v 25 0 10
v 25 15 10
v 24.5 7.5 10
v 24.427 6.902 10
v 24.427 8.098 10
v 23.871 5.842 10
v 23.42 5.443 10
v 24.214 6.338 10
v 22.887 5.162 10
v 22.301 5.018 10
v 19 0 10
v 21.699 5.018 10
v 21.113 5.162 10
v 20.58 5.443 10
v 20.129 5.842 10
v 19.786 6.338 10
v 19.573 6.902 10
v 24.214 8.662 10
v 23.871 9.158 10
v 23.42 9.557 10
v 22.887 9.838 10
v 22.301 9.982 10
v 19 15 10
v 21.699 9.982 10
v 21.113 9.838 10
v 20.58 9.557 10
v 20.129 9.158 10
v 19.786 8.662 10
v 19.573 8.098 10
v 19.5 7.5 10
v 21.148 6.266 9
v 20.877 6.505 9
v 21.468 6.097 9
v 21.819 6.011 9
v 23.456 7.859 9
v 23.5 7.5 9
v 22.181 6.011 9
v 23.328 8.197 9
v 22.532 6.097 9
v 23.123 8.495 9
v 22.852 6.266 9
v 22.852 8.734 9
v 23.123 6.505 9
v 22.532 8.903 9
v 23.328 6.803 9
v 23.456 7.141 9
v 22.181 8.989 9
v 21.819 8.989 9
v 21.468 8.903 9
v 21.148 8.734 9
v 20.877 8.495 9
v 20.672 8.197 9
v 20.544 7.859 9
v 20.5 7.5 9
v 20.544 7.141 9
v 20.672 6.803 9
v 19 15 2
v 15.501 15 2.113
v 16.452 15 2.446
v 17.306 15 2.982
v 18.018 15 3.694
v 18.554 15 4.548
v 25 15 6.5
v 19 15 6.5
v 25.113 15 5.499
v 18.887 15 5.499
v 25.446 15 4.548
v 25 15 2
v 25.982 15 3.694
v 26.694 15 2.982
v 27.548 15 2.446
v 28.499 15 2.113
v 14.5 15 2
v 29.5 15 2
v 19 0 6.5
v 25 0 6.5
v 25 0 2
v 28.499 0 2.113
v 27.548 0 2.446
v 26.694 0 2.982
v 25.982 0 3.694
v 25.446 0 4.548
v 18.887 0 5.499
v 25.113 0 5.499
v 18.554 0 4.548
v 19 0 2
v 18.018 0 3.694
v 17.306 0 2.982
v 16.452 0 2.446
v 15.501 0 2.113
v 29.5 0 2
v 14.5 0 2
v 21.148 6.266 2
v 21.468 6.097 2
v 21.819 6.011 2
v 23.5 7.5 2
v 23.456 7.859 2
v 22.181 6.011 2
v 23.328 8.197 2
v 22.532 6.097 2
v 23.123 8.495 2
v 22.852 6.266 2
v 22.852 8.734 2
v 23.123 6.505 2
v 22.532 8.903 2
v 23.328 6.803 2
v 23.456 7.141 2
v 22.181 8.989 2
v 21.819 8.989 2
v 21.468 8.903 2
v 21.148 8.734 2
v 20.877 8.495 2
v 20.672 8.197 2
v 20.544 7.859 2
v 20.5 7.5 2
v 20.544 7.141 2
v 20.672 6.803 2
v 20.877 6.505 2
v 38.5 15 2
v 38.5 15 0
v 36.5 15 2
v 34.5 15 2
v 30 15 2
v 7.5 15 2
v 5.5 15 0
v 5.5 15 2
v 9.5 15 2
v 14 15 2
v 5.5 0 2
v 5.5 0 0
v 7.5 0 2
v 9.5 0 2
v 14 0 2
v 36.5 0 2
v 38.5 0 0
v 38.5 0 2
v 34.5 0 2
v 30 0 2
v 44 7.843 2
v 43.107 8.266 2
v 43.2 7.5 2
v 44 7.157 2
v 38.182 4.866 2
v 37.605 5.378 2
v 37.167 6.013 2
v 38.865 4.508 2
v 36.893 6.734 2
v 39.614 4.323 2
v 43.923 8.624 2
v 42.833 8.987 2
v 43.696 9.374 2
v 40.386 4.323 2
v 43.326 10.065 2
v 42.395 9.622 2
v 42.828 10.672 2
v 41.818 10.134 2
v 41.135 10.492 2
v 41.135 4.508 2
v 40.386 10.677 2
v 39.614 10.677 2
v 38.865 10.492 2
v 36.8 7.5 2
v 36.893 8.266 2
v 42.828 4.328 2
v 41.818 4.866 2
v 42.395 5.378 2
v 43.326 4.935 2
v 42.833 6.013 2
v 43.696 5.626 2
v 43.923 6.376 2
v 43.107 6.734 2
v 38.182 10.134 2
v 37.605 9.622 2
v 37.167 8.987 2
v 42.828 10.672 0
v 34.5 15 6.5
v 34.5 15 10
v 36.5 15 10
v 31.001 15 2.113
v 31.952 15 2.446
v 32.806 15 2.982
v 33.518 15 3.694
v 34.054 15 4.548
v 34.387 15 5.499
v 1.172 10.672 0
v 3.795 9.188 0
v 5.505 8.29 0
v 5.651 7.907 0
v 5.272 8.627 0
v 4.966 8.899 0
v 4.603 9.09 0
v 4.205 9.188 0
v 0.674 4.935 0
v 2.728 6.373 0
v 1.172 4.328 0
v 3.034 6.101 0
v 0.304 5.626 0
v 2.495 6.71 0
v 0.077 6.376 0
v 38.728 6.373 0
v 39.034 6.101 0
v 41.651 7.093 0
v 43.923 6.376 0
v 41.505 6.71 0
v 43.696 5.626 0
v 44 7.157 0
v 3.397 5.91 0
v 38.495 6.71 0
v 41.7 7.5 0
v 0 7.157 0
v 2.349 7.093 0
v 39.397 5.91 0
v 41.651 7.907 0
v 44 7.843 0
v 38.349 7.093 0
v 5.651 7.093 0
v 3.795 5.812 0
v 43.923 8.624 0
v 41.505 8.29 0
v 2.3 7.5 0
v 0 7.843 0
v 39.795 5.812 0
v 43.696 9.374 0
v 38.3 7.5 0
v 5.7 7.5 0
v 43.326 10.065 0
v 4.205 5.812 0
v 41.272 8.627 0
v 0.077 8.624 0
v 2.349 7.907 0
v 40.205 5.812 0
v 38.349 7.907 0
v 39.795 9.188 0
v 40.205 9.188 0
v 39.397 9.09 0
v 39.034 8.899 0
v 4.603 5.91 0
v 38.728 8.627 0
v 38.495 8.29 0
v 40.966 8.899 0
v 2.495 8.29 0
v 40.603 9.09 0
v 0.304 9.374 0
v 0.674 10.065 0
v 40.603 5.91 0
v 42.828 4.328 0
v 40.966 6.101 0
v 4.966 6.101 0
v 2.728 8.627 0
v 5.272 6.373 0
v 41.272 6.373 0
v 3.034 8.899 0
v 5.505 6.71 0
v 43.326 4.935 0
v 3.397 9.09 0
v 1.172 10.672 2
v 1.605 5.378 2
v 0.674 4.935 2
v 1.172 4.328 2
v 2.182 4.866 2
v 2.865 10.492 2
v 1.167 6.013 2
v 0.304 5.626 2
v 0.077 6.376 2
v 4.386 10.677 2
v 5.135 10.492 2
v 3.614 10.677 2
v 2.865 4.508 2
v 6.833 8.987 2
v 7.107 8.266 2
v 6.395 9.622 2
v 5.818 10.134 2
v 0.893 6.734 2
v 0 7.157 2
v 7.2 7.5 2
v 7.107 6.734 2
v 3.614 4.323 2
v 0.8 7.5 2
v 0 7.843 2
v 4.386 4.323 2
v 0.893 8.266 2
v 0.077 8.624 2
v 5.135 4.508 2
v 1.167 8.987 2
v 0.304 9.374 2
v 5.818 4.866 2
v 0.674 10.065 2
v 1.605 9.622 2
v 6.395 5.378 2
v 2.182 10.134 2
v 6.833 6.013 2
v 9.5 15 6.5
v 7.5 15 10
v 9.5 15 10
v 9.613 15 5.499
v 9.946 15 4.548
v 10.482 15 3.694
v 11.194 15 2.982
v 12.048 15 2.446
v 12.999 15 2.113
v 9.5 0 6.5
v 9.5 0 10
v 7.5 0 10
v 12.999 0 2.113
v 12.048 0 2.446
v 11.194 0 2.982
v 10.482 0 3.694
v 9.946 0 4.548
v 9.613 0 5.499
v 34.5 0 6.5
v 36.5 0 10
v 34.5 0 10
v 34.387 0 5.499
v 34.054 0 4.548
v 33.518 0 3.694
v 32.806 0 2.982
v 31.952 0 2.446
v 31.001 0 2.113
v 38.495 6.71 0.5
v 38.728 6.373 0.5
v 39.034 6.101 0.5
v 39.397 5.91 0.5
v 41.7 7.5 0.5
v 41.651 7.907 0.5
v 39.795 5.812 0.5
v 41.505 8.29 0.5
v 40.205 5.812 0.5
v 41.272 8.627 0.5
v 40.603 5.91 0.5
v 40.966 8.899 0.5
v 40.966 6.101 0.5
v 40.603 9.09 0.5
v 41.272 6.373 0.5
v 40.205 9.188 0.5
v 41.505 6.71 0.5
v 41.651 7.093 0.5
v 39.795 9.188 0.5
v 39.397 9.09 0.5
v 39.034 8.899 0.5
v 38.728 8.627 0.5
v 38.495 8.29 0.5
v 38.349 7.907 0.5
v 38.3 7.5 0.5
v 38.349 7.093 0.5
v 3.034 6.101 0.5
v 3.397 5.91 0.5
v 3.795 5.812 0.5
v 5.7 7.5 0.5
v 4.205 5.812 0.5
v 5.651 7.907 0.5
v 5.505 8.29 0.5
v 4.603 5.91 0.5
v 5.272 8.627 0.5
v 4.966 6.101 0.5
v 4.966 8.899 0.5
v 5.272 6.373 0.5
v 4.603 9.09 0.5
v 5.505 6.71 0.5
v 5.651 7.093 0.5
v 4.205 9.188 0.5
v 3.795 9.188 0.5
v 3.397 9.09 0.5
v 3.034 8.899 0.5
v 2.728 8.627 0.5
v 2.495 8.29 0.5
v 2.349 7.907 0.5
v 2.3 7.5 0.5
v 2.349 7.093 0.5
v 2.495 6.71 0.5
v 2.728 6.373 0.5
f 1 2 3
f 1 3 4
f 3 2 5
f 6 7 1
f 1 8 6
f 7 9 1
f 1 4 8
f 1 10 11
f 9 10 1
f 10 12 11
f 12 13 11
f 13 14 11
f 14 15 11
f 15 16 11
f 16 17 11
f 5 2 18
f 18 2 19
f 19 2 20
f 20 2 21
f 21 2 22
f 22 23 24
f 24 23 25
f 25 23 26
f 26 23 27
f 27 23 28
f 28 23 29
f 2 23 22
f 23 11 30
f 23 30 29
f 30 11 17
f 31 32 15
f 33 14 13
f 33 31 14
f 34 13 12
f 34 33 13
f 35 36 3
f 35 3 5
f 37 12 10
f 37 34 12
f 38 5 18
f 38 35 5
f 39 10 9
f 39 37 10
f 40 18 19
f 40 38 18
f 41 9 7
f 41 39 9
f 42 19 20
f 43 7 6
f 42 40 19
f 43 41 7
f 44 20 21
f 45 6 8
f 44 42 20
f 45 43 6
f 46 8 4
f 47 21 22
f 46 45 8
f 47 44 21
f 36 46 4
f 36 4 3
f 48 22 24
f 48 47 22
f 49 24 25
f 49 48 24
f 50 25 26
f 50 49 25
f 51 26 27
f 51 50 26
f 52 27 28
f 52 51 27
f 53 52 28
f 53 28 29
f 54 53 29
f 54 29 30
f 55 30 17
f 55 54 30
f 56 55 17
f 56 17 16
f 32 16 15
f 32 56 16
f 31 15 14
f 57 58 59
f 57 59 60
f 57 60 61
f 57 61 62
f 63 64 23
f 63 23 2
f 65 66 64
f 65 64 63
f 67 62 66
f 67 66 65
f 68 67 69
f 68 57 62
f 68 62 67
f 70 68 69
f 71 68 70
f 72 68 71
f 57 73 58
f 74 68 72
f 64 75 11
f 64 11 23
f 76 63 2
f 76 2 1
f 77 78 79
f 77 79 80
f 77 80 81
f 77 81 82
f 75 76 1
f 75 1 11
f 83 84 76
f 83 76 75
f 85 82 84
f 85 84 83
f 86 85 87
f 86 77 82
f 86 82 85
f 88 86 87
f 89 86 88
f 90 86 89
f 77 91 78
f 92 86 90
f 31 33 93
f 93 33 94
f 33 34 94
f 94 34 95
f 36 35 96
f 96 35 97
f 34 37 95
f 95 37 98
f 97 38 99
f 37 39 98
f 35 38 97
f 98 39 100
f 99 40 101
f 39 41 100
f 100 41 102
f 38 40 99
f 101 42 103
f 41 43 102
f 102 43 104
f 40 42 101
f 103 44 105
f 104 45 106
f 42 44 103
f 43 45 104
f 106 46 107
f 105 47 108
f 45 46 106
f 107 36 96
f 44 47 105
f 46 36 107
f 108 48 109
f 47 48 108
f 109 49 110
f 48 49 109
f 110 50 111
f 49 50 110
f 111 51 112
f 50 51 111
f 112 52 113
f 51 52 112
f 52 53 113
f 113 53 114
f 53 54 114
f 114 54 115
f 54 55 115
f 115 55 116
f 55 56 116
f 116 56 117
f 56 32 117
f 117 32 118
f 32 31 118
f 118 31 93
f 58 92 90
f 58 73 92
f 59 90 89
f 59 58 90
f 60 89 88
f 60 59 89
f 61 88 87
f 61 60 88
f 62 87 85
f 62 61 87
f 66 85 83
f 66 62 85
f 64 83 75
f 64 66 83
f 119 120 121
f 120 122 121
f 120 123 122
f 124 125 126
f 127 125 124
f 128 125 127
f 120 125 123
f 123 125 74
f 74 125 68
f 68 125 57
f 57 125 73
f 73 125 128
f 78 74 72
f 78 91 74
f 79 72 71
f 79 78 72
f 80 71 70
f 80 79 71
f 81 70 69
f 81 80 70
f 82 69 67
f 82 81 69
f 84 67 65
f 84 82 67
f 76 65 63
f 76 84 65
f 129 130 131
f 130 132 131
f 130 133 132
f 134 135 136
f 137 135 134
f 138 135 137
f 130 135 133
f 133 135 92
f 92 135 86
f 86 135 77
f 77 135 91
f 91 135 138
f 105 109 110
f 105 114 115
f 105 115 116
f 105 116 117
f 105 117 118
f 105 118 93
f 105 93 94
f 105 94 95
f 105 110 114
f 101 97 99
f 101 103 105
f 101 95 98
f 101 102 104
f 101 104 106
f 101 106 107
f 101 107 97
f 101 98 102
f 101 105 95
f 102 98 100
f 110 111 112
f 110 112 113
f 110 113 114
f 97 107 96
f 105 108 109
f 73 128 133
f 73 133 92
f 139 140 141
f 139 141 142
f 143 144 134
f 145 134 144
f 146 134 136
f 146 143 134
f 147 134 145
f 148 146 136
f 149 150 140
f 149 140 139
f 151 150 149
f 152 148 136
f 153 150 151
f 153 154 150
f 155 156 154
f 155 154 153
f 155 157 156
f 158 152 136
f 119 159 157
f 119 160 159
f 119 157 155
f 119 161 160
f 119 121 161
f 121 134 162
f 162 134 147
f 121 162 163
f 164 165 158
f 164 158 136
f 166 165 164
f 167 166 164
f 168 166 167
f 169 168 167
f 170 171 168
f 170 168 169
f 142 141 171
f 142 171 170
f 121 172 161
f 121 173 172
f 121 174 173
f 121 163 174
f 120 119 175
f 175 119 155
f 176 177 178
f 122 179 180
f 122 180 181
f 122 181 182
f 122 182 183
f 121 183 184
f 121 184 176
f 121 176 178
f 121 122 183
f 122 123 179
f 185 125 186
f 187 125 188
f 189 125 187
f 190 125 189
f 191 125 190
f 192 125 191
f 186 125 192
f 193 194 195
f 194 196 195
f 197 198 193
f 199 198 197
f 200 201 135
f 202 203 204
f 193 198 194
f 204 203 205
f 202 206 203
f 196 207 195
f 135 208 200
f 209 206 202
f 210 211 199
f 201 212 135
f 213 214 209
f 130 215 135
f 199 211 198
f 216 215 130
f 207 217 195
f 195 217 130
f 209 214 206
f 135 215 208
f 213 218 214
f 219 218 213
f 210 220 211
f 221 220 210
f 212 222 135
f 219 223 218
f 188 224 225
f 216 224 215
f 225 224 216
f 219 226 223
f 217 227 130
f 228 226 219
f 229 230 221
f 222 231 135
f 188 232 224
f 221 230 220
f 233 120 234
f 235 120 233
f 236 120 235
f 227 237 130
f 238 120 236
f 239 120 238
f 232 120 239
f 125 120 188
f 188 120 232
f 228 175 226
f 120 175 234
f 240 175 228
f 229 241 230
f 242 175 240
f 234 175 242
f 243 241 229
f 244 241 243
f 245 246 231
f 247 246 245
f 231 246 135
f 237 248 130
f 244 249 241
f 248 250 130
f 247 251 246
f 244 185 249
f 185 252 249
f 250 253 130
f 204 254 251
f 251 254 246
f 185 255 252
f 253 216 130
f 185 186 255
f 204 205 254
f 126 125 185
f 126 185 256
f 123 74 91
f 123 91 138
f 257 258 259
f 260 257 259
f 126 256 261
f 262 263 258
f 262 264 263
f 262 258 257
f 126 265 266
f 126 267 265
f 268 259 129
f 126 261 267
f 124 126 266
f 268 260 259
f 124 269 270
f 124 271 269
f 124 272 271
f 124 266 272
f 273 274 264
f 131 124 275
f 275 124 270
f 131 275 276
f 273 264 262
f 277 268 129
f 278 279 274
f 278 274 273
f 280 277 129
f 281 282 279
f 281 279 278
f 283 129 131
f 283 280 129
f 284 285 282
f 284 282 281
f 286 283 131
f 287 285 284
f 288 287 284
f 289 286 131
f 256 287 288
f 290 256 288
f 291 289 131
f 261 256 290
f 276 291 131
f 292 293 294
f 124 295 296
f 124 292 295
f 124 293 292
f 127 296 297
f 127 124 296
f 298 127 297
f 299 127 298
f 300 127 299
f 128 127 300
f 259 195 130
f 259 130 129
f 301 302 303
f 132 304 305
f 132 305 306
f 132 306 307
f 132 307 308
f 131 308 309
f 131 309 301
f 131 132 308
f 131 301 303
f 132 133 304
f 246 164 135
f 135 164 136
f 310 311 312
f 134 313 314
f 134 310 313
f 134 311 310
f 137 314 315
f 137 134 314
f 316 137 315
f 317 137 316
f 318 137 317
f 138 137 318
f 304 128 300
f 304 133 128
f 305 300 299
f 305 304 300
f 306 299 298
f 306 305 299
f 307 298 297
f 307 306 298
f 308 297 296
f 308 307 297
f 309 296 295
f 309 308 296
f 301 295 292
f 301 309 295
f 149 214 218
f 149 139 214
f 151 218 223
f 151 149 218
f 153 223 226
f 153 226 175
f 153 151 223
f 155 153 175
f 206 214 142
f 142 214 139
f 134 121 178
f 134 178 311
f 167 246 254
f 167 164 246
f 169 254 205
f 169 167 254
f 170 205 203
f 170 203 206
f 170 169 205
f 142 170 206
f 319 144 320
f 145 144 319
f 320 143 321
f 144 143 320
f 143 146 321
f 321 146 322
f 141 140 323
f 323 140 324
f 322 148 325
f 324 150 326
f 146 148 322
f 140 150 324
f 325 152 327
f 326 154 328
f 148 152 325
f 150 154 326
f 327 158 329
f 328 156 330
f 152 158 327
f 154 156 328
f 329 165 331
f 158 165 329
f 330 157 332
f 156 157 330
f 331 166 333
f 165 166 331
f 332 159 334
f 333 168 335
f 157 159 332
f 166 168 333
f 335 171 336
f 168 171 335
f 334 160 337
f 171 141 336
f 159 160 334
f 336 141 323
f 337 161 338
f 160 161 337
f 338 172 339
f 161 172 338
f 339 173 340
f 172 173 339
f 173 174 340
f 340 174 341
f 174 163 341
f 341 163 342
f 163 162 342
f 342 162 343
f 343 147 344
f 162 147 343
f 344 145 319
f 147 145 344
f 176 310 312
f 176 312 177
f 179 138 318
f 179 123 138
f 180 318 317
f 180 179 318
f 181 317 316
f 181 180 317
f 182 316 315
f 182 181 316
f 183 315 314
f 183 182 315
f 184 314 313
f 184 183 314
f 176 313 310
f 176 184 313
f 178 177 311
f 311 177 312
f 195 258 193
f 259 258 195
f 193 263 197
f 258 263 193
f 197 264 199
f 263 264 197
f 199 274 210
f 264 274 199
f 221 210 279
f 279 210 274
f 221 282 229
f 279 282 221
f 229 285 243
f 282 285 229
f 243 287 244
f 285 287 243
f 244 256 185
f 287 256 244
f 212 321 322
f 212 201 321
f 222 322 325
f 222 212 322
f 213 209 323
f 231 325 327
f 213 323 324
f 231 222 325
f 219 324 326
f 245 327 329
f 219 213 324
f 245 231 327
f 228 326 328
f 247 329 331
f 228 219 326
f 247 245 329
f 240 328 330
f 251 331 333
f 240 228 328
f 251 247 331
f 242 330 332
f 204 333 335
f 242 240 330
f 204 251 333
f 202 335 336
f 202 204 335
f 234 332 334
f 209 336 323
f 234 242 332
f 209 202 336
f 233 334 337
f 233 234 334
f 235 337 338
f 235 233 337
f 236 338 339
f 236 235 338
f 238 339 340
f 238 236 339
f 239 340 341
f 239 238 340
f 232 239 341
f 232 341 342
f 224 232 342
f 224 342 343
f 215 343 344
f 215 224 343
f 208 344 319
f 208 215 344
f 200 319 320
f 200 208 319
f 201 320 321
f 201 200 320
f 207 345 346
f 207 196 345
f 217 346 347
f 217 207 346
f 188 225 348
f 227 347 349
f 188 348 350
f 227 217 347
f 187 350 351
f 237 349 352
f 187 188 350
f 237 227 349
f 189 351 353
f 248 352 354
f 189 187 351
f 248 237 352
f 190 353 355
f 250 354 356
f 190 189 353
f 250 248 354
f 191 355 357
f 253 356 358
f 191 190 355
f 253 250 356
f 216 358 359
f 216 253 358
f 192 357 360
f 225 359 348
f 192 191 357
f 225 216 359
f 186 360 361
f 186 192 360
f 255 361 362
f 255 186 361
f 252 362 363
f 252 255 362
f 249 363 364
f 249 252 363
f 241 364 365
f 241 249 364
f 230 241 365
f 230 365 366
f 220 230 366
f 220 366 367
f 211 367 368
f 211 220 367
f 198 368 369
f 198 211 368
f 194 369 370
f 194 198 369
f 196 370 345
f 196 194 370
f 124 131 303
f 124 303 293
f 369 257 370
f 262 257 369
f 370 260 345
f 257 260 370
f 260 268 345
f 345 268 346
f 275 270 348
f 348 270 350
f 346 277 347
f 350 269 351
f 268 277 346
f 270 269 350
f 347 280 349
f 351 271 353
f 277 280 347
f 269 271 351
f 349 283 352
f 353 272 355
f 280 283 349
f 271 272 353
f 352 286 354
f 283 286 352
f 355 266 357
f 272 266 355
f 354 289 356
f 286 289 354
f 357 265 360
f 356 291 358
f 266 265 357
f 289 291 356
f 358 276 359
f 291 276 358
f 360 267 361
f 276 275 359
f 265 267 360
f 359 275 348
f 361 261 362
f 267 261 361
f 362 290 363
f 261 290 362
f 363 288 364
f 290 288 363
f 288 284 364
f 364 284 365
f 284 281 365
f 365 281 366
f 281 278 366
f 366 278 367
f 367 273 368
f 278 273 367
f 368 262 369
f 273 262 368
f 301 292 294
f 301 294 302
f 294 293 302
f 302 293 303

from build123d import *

# Parameters (mm, degrees)
SKETCH_W        = 44
SKETCH_H        = 15
SKETCH_R        = 1.7
PAD_DEPTH       = 2
CHAMFER_SIZE    = 1.5
SKETCH001_W     = 2
SKETCH001_H     = 15
SKETCH001_W_2   = 6
PAD001_DEPTH    = 8
FILLET_R        = 4.5
SKETCH002_R     = 1.5
POCKET_DEPTH    = 8
CHAMFER001_SIZE = 5.5
FILLET001_R     = 4
CHAMFER002_SIZE = 1


with BuildPart() as part:
    # Sketch → Pad (new body)
    with BuildSketch(Plane.XY):
        with Locations((22, 7.5)):
            Rectangle(SKETCH_W, SKETCH_H)
        with Locations((4, 7.5)):
            Circle(SKETCH_R, mode=Mode.SUBTRACT)
        with Locations((40, 7.5)):
            Circle(SKETCH_R, mode=Mode.SUBTRACT)
    extrude(amount=PAD_DEPTH)

    # Chamfer
    chamfer_edges = [part.edges().sort_by_distance(p)[0] for p in [
        (2.3, 7.5, 2),
        (38.3, 7.5, 2),
    ]]
    chamfer(chamfer_edges, length=CHAMFER_SIZE)

    # Sketch001 (on Face4 of Chamfer) → Pad001 (join)
    with BuildSketch(Plane.XY.offset(2)):
        with Locations((8.5, 7.5)):
            Rectangle(SKETCH001_W, SKETCH001_H)
        with Locations((35.5, 7.5)):
            Rectangle(SKETCH001_W, SKETCH001_H)
        with Locations((22, 7.5)):
            Rectangle(SKETCH001_W_2, SKETCH001_H)
    extrude(amount=PAD001_DEPTH)

    # Fillet
    fillet_edges = [part.edges().sort_by_distance(p)[0] for p in [
        (9.5, 7.5, 2),
        (19, 7.5, 2),
        (25, 7.5, 2),
        (34.5, 7.5, 2),
    ]]
    fillet(fillet_edges, radius=FILLET_R)

    # Sketch002 (on Face20 of Fillet) → Pocket (cut)
    with BuildSketch(Plane.XY.offset(10)):
        with Locations((22, 7.5)):
            Circle(SKETCH002_R)
    extrude(amount=-POCKET_DEPTH, mode=Mode.SUBTRACT)

    # Chamfer001
    chamfer001_edges = [part.edges().sort_by_distance(p)[0] for p in [
        (0, 0, 1),
        (0, 15, 1),
        (44, 15, 1),
        (44, 0, 1),
    ]]
    chamfer(chamfer001_edges, length=CHAMFER001_SIZE)

    # Fillet001
    fillet001_edges = [part.edges().sort_by_distance(p)[0] for p in [
        (0, 5.5, 1),
        (0, 9.5, 1),
        (44, 9.5, 1),
        (44, 5.5, 1),
    ]]
    fillet(fillet001_edges, radius=FILLET001_R)

    # Chamfer002
    chamfer002_edges = [part.edges().sort_by_distance(p)[0] for p in [
        (20.5, 7.5, 10),
    ]]
    chamfer(chamfer002_edges, length=CHAMFER002_SIZE)


solid = part.part
